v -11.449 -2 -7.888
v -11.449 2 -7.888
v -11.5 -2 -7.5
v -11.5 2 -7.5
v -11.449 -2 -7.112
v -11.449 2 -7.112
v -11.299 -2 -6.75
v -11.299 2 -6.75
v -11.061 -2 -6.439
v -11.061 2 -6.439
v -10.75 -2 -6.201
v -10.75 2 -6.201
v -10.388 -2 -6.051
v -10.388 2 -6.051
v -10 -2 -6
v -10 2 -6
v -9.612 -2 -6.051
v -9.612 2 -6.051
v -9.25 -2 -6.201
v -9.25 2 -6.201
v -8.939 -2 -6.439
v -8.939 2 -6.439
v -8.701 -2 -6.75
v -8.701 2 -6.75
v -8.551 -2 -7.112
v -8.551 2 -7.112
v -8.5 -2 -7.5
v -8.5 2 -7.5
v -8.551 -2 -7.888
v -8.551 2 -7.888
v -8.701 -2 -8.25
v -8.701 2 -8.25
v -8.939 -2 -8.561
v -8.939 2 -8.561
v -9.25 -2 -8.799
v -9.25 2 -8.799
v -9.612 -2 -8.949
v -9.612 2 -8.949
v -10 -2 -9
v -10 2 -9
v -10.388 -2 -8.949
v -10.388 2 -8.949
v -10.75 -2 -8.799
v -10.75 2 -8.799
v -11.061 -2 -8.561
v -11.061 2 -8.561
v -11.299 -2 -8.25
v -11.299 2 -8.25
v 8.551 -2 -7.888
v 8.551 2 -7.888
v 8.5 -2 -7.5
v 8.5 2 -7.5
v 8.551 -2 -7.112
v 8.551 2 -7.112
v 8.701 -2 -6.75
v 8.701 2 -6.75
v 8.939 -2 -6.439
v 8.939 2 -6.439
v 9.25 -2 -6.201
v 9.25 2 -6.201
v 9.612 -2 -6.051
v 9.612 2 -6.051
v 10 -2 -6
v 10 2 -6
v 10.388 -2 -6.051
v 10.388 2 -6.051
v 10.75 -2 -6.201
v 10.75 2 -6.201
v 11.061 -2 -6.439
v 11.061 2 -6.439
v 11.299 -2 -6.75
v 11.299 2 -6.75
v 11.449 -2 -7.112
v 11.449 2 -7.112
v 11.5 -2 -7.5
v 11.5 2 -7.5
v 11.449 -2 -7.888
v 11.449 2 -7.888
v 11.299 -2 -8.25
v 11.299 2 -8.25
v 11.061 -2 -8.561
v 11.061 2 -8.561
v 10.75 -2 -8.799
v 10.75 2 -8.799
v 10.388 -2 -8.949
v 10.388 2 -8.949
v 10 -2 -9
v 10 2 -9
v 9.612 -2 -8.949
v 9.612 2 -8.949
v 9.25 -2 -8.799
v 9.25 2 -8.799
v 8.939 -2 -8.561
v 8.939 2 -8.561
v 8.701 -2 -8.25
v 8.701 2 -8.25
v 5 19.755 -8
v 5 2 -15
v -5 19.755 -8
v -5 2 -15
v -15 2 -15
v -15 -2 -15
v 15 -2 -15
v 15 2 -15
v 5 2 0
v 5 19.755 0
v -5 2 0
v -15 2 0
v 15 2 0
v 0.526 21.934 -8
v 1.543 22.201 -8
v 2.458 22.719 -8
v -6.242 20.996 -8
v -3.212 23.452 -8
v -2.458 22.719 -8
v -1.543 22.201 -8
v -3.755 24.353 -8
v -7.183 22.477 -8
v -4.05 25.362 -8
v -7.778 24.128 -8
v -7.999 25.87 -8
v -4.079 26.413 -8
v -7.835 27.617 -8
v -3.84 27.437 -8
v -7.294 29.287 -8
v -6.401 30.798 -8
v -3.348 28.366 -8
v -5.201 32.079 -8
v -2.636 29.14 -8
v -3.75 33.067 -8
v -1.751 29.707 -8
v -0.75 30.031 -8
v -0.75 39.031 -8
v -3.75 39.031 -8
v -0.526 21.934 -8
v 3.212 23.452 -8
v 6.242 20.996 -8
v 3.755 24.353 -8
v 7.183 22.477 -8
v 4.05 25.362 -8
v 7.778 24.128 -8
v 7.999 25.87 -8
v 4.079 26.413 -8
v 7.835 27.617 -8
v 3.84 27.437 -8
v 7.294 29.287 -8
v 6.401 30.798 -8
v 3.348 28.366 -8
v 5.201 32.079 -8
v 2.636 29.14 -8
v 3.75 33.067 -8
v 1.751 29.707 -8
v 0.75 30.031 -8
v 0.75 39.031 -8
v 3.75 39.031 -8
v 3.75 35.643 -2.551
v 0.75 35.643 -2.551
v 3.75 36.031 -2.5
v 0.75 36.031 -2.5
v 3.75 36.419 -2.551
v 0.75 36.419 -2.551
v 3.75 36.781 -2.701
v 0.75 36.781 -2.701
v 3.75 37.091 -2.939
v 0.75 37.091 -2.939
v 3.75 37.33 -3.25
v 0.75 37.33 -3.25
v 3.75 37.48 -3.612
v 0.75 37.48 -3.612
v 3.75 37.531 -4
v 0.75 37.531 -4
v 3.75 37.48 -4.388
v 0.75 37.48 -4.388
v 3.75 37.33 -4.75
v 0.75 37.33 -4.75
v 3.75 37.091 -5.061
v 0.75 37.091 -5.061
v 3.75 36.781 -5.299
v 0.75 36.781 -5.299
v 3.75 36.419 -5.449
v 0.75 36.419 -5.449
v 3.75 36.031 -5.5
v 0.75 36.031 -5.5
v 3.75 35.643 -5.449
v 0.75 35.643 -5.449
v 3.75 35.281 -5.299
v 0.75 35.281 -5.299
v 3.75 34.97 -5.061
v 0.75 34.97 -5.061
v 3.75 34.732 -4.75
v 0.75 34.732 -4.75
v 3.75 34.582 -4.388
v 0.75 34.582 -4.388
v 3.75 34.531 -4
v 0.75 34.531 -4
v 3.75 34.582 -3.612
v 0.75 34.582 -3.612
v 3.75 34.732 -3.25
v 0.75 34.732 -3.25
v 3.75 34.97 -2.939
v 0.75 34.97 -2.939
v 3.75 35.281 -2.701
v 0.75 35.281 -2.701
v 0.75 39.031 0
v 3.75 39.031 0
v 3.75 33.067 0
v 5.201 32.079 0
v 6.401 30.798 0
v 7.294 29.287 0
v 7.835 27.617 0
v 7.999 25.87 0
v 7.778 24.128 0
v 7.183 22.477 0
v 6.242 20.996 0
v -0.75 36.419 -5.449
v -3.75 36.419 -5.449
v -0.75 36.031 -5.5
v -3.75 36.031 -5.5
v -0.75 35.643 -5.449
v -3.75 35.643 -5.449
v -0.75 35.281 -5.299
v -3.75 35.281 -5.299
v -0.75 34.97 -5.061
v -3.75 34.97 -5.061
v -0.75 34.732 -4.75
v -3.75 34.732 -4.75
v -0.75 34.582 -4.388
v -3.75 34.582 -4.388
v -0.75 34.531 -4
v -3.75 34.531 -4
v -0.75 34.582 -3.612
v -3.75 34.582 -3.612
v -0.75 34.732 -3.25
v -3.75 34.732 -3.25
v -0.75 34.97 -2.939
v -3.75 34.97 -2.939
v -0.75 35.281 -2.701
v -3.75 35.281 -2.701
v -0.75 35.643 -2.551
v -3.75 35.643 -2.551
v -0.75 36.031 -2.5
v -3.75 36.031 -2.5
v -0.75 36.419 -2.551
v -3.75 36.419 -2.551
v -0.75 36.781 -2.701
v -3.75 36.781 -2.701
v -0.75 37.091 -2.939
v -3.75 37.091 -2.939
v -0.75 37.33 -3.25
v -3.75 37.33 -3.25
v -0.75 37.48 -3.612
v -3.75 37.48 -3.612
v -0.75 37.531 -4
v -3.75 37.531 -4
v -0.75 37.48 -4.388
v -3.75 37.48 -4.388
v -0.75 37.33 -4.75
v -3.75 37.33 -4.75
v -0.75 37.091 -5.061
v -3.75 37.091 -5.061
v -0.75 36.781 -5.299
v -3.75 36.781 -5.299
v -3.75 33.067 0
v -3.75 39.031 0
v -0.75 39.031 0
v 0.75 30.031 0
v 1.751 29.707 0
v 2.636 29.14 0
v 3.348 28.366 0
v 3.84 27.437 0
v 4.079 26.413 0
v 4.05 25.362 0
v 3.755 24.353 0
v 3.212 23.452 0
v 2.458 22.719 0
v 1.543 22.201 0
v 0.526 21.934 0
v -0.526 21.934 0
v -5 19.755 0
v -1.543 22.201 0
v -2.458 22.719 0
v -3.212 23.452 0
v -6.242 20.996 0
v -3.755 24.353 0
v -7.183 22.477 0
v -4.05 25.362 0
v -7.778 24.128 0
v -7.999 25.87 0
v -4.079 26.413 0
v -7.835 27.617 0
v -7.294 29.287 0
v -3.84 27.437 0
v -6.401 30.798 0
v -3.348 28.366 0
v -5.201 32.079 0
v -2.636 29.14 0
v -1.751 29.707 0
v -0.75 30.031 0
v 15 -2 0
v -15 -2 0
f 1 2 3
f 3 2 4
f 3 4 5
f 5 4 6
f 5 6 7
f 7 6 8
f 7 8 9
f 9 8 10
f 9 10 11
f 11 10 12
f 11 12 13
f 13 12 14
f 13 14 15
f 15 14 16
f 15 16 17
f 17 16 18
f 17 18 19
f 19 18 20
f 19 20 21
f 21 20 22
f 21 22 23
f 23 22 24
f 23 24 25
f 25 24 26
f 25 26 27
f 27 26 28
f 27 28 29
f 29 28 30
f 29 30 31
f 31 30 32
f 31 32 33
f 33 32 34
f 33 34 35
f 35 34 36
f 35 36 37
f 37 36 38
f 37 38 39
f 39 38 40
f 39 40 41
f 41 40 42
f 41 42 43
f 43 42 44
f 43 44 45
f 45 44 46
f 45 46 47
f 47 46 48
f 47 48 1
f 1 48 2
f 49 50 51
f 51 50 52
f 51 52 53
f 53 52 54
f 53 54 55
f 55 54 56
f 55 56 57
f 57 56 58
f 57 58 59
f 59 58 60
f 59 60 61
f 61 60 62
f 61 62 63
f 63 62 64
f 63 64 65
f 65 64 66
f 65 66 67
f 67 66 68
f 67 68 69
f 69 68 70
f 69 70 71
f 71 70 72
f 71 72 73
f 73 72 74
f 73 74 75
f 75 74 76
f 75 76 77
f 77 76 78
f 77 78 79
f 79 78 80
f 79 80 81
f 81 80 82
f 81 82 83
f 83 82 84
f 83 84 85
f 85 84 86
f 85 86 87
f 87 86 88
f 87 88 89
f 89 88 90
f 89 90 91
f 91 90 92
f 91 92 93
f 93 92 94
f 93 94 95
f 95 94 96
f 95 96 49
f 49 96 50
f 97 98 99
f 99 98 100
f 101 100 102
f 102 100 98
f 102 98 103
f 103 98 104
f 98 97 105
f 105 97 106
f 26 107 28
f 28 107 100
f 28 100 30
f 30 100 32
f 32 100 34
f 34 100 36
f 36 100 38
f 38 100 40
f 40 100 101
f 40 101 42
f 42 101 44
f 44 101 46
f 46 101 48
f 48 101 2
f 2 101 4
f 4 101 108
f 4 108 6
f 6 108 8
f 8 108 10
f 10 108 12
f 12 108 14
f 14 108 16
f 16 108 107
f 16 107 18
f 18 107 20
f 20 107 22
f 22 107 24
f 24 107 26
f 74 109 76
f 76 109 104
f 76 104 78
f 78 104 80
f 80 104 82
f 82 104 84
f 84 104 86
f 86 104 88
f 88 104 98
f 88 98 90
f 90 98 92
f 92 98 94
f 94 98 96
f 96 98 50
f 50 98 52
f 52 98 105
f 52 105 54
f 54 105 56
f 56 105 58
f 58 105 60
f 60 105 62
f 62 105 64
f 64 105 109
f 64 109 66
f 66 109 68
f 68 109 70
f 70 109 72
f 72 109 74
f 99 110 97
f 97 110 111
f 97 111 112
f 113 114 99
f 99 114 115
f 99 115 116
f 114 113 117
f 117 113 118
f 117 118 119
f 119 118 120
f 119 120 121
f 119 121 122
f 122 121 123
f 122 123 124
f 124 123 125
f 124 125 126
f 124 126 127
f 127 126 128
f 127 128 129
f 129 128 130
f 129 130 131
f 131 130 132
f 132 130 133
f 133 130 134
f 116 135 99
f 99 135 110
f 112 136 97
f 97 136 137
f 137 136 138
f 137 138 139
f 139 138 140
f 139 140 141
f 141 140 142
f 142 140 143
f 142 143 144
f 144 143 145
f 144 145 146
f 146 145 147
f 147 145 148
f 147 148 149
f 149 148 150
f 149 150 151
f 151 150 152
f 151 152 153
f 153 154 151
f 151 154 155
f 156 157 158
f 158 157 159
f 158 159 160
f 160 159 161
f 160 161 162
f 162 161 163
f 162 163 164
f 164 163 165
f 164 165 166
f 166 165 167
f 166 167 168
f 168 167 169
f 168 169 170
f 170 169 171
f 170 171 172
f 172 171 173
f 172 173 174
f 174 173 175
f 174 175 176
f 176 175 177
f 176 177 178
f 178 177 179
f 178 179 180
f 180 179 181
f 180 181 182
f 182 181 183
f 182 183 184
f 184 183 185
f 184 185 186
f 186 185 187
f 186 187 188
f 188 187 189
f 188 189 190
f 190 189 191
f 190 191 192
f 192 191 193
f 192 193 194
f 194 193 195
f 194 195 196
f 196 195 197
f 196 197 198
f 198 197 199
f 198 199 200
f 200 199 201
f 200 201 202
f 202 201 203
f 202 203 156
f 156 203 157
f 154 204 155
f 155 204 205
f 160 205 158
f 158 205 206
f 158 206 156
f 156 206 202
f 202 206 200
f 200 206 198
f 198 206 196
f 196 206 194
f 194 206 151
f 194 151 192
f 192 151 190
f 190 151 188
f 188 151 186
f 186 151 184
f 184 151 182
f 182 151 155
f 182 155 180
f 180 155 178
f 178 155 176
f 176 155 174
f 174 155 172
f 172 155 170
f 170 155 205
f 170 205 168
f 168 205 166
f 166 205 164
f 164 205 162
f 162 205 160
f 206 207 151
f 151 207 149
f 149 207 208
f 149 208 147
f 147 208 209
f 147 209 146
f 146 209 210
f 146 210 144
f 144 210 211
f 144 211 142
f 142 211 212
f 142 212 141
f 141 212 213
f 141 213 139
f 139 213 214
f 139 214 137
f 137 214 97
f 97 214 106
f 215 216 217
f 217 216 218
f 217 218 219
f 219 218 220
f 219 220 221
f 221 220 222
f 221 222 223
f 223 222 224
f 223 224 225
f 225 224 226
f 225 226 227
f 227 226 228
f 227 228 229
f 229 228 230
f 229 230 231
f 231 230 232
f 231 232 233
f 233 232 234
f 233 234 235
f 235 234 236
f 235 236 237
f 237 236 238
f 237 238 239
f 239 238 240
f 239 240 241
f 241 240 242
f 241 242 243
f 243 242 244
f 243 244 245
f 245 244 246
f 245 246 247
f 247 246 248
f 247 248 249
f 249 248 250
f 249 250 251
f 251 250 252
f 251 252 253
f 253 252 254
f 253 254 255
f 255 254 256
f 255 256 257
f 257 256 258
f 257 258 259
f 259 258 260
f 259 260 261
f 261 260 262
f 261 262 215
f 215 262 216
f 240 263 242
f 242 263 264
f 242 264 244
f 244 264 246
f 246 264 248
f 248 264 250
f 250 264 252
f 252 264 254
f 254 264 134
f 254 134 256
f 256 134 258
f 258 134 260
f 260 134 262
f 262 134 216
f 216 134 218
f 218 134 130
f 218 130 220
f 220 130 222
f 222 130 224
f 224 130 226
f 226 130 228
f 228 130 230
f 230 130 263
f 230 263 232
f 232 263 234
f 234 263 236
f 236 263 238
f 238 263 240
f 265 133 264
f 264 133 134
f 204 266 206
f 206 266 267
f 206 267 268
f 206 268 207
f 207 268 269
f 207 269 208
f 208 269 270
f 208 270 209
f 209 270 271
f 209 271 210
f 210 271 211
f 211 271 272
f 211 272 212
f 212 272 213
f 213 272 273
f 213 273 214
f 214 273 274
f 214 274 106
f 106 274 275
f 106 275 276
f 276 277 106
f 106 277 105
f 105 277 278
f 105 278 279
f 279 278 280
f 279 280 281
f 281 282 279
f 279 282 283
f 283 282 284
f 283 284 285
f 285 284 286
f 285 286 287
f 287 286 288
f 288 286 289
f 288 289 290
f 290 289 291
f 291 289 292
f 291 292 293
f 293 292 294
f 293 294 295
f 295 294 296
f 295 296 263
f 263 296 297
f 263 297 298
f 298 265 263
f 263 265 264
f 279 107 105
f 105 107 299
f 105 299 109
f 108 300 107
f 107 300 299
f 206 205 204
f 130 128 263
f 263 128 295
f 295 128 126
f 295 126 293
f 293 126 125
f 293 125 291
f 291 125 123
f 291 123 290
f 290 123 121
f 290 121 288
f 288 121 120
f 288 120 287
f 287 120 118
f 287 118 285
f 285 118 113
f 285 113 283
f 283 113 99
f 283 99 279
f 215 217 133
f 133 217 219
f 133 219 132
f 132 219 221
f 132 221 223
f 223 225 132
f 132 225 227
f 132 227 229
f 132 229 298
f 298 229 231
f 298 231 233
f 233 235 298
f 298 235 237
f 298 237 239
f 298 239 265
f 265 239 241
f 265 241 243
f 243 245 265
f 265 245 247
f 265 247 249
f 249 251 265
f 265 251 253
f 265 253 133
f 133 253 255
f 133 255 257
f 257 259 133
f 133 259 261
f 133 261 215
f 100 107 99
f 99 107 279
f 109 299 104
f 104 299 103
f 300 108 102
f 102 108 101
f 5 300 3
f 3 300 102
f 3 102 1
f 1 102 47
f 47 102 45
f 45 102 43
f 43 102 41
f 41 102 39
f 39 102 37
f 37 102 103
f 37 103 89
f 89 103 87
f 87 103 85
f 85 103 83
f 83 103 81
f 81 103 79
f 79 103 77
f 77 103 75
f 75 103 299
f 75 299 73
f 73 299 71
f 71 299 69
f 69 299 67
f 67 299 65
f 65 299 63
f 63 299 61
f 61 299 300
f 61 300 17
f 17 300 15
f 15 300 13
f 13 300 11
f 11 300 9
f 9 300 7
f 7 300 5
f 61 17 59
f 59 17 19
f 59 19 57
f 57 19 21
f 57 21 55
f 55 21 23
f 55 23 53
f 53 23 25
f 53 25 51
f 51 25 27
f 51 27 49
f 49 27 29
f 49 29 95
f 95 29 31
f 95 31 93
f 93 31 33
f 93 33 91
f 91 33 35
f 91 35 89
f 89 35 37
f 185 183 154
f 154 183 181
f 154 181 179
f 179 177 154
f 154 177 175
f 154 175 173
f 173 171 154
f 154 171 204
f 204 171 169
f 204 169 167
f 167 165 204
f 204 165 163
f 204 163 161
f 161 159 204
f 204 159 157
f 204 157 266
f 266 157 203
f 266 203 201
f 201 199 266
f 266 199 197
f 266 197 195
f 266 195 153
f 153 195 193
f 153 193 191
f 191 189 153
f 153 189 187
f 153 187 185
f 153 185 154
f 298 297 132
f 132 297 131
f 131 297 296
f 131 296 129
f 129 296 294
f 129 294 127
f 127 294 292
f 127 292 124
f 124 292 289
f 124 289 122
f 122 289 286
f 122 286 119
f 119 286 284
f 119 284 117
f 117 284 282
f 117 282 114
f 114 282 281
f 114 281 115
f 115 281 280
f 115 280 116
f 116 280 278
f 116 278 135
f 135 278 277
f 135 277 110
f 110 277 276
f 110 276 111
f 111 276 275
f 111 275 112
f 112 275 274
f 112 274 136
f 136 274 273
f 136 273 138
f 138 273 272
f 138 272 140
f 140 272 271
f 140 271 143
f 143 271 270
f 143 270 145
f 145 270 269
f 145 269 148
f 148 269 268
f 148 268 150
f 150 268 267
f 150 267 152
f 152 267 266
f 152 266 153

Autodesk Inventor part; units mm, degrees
ref_plane "YZ Plane" through (0, 0, 0) normal (1, 0, 0) x (0, 1, 0)
ref_plane "XZ Plane" through (0, 0, 0) normal (0, 1, 0) x (-1, 0, 0)
ref_plane "XY Plane" through (0, 0, 0) normal (0, 0, 1) x (1, 0, 0)
sketch "Szkic1" plane through (0, 0, 0) normal (0, 0, 1) x (1, 0, 0)
  line L0 (-15, -2) -> (15, -2)
  line L1 (15, -2) -> (15, 2)
  line L2 (15, 2) -> (5, 2)
  line L3 (-15, 2) -> (-15, -2)
  line L4 (-15, -2) -> (15, 2) construction
  line L5 (15, -2) -> (-15, 2) construction
  line L6 (-5, 2) -> (-0.75, 2)
  line L7 (5, 2) -> (5, 19.755)
  line L8 (5, 22) -> (-5, 22)
  line L9 (-5, 22) -> (-5, 2)
  line L10 (-0.75, 28.2995) -> (0.75, 28.2995)
  line L11 (0.75, 28.2995) -> (0.75, 33.9648)
  line L12 (0.75, 35.6626) -> (-0.75, 35.6626)
  line L13 (-0.75, 35.6626) -> (-0.75, 33.9648)
  line L14 (-0.75, 28.2995) -> (0.75, 35.6626) construction
  line L15 (0.75, 28.2995) -> (-0.75, 35.6626) construction
  line L16 (-0.75, 33.9648) -> (-0.75, 28.2995)
  arc A0 (5, 19.755) -> (0.75, 33.9648) centre (0, 26) ccw
  arc A1 (0.9, 22) -> (0.75, 30.0308) centre (0, 26) ccw
  arc A2 (-0.75, 30.0308) -> (0.9, 22) centre (0, 26) ccw
  arc A3 (-0.75, 33.9648) -> (-5, 19.755) centre (0, 26) ccw
  line L17 (0.75, 33.9648) -> (0.75, 35.6626)
  arc A4 (-5, 19.755) -> (2.749, 18.4871) centre (0, 26) ccw
  arc A5 (2.749, 18.4871) -> (5, 19.755) centre (0, 26) ccw
  line L18 (5, 19.755) -> (5, 22)
  line L19 (5, 2) -> (-15, 2)
  line L20 (-0.75, 2) -> (5, 2)
  point P0 (0, 0)
  point P1 (0, 31.981)
  dimension "d0" = 30
  dimension "d1" = 4
  dimension "d2" = 10
  dimension "d3" = 20
  dimension "d4" = 5
  dimension "d6" = 4
  dimension "d7" = 5
  dimension "d9" = 1.5
  dimension "d10" = 7.3631
  dimension "d11" = 31.981
  dimension "d12" = 5
  dimension "d13" = 8
  dimension "d14" = 4.1
extrude "Wyciągnięcie proste1" add sketch "Szkic1" against normal blind 8 contours L3 L19 L6 L2 L1 L0 | L9 A4 A5 L7 L19 L6 | A3 L16 A2 L8 L9 | L9 L8 A2 L18 A5 A4 | L18 L8 A1 L11 A0
sketch "Szkic2" plane through (0, 0, -8) normal (0, 0, -1) x (-1, 0, 0)
  line L0 (-15, 2) -> (15, 2)
  line L1 (15, 2) -> (15, -2)
  line L2 (15, -2) -> (-15, -2)
  line L3 (-15, -2) -> (-15, 2)
  point P0 (0, 0)
extrude "Wyciągnięcie proste2" add sketch "Szkic2" along normal blind 7
sketch "Szkic3" plane through (-0.75, 30.0308, 0) normal (1, 0, 0) x (0, 0, -1)
  line L0 (0, 3.9339) -> (0, 0) projected
  line L1 (0, 0) -> (8, 0)
  line L2 (8, 0) -> (8, 9)
  line L3 (8, 9) -> (0, 9)
  line L4 (0, 9) -> (0, 0)
  point P0 (0, -30.0308)
  dimension "d19" = 8
  dimension "d20" = 9
extrude "Wyciągnięcie proste3" add sketch "Szkic3" against normal blind 3
sketch "Szkic4" plane through (-3.75, 30.0308, 0) normal (-1, 0, 0) x (0, 0, 1)
  line L0 (0, 9) -> (-8, 9) projected
  line L1 (0, 3.0358) -> (0, 9) projected
  point P0 (0, -30.0308)
  point P1 (-4, 6)
  dimension "d23" = 3
  dimension "d24" = 4
hole "Otwór1" at (-3.75, 36.0308, -4) direction (1, 0, 0) diameter 3 depth 8 tip angle 118
mirror "Odbij1" about plane through (0, 0, 0) normal (1, 0, 0) of "Wyciągnięcie proste3", "Otwór1"
sketch "Szkic5" plane through (0, 0, -8) normal (0, 0, -1) x (-1, 0, 0)
  arc A0 (-3.75, 33.0666) -> (-5, 19.755) centre (0, 26) ccw projected
  line L0 (5, 2) -> (15, 2) projected
  line L1 (-5, 19.755) -> (5, 19.755)
  line L2 (5, 19.755) -> (5, 2)
  line L3 (5, 2) -> (-5, 2)
  line L4 (-5, 2) -> (-5, 19.755)
  point P0 (0, 0)
extrude "Wyciągnięcie proste4" add sketch "Szkic5" along normal blind 7
sketch "Szkic7" plane through (-5, 2, 0) normal (-1, 0, 0) x (0, 0, 1)
  line L0 (0, 17.755) -> (-8, 17.755) projected
  line L1 (-15, -4) -> (-15, 0) projected
  line L2 (-8, 17.755) -> (-15, 0)
  line L3 (-15, 17.755) -> (-15, 0) projected
  line L4 (-15, 0) -> (-15, 17.755)
  line L5 (-8, 17.755) -> (-15, 17.755) projected
  line L6 (-15, 17.755) -> (-8, 17.755)
  point P0 (0, -2)
extrude "Wyciągnięcie proste5" cut sketch "Szkic7" against normal through all
sketch "Szkic8" plane through (-15, 2, 0) normal (0, 1, 0) x (1, 0, 0)
  line L0 (0, 0) -> (0, 15) projected
  line L1 (0, 15) -> (10, 15) projected
  line L2 (15, 0) -> (15, 15) construction
  point P0 (5, 7.5)
  point P1 (25, 7.5)
  dimension "d36" = 5
  dimension "d37" = 7.5
hole "Otwór2" at (-10, 2, -7.5) at (10, 2, -7.5) direction (0, -1, 0) diameter 3 depth 8 tip angle 118
properties part number "Kamera_uchwyt" material "Tworzywo sztuczne PET"
